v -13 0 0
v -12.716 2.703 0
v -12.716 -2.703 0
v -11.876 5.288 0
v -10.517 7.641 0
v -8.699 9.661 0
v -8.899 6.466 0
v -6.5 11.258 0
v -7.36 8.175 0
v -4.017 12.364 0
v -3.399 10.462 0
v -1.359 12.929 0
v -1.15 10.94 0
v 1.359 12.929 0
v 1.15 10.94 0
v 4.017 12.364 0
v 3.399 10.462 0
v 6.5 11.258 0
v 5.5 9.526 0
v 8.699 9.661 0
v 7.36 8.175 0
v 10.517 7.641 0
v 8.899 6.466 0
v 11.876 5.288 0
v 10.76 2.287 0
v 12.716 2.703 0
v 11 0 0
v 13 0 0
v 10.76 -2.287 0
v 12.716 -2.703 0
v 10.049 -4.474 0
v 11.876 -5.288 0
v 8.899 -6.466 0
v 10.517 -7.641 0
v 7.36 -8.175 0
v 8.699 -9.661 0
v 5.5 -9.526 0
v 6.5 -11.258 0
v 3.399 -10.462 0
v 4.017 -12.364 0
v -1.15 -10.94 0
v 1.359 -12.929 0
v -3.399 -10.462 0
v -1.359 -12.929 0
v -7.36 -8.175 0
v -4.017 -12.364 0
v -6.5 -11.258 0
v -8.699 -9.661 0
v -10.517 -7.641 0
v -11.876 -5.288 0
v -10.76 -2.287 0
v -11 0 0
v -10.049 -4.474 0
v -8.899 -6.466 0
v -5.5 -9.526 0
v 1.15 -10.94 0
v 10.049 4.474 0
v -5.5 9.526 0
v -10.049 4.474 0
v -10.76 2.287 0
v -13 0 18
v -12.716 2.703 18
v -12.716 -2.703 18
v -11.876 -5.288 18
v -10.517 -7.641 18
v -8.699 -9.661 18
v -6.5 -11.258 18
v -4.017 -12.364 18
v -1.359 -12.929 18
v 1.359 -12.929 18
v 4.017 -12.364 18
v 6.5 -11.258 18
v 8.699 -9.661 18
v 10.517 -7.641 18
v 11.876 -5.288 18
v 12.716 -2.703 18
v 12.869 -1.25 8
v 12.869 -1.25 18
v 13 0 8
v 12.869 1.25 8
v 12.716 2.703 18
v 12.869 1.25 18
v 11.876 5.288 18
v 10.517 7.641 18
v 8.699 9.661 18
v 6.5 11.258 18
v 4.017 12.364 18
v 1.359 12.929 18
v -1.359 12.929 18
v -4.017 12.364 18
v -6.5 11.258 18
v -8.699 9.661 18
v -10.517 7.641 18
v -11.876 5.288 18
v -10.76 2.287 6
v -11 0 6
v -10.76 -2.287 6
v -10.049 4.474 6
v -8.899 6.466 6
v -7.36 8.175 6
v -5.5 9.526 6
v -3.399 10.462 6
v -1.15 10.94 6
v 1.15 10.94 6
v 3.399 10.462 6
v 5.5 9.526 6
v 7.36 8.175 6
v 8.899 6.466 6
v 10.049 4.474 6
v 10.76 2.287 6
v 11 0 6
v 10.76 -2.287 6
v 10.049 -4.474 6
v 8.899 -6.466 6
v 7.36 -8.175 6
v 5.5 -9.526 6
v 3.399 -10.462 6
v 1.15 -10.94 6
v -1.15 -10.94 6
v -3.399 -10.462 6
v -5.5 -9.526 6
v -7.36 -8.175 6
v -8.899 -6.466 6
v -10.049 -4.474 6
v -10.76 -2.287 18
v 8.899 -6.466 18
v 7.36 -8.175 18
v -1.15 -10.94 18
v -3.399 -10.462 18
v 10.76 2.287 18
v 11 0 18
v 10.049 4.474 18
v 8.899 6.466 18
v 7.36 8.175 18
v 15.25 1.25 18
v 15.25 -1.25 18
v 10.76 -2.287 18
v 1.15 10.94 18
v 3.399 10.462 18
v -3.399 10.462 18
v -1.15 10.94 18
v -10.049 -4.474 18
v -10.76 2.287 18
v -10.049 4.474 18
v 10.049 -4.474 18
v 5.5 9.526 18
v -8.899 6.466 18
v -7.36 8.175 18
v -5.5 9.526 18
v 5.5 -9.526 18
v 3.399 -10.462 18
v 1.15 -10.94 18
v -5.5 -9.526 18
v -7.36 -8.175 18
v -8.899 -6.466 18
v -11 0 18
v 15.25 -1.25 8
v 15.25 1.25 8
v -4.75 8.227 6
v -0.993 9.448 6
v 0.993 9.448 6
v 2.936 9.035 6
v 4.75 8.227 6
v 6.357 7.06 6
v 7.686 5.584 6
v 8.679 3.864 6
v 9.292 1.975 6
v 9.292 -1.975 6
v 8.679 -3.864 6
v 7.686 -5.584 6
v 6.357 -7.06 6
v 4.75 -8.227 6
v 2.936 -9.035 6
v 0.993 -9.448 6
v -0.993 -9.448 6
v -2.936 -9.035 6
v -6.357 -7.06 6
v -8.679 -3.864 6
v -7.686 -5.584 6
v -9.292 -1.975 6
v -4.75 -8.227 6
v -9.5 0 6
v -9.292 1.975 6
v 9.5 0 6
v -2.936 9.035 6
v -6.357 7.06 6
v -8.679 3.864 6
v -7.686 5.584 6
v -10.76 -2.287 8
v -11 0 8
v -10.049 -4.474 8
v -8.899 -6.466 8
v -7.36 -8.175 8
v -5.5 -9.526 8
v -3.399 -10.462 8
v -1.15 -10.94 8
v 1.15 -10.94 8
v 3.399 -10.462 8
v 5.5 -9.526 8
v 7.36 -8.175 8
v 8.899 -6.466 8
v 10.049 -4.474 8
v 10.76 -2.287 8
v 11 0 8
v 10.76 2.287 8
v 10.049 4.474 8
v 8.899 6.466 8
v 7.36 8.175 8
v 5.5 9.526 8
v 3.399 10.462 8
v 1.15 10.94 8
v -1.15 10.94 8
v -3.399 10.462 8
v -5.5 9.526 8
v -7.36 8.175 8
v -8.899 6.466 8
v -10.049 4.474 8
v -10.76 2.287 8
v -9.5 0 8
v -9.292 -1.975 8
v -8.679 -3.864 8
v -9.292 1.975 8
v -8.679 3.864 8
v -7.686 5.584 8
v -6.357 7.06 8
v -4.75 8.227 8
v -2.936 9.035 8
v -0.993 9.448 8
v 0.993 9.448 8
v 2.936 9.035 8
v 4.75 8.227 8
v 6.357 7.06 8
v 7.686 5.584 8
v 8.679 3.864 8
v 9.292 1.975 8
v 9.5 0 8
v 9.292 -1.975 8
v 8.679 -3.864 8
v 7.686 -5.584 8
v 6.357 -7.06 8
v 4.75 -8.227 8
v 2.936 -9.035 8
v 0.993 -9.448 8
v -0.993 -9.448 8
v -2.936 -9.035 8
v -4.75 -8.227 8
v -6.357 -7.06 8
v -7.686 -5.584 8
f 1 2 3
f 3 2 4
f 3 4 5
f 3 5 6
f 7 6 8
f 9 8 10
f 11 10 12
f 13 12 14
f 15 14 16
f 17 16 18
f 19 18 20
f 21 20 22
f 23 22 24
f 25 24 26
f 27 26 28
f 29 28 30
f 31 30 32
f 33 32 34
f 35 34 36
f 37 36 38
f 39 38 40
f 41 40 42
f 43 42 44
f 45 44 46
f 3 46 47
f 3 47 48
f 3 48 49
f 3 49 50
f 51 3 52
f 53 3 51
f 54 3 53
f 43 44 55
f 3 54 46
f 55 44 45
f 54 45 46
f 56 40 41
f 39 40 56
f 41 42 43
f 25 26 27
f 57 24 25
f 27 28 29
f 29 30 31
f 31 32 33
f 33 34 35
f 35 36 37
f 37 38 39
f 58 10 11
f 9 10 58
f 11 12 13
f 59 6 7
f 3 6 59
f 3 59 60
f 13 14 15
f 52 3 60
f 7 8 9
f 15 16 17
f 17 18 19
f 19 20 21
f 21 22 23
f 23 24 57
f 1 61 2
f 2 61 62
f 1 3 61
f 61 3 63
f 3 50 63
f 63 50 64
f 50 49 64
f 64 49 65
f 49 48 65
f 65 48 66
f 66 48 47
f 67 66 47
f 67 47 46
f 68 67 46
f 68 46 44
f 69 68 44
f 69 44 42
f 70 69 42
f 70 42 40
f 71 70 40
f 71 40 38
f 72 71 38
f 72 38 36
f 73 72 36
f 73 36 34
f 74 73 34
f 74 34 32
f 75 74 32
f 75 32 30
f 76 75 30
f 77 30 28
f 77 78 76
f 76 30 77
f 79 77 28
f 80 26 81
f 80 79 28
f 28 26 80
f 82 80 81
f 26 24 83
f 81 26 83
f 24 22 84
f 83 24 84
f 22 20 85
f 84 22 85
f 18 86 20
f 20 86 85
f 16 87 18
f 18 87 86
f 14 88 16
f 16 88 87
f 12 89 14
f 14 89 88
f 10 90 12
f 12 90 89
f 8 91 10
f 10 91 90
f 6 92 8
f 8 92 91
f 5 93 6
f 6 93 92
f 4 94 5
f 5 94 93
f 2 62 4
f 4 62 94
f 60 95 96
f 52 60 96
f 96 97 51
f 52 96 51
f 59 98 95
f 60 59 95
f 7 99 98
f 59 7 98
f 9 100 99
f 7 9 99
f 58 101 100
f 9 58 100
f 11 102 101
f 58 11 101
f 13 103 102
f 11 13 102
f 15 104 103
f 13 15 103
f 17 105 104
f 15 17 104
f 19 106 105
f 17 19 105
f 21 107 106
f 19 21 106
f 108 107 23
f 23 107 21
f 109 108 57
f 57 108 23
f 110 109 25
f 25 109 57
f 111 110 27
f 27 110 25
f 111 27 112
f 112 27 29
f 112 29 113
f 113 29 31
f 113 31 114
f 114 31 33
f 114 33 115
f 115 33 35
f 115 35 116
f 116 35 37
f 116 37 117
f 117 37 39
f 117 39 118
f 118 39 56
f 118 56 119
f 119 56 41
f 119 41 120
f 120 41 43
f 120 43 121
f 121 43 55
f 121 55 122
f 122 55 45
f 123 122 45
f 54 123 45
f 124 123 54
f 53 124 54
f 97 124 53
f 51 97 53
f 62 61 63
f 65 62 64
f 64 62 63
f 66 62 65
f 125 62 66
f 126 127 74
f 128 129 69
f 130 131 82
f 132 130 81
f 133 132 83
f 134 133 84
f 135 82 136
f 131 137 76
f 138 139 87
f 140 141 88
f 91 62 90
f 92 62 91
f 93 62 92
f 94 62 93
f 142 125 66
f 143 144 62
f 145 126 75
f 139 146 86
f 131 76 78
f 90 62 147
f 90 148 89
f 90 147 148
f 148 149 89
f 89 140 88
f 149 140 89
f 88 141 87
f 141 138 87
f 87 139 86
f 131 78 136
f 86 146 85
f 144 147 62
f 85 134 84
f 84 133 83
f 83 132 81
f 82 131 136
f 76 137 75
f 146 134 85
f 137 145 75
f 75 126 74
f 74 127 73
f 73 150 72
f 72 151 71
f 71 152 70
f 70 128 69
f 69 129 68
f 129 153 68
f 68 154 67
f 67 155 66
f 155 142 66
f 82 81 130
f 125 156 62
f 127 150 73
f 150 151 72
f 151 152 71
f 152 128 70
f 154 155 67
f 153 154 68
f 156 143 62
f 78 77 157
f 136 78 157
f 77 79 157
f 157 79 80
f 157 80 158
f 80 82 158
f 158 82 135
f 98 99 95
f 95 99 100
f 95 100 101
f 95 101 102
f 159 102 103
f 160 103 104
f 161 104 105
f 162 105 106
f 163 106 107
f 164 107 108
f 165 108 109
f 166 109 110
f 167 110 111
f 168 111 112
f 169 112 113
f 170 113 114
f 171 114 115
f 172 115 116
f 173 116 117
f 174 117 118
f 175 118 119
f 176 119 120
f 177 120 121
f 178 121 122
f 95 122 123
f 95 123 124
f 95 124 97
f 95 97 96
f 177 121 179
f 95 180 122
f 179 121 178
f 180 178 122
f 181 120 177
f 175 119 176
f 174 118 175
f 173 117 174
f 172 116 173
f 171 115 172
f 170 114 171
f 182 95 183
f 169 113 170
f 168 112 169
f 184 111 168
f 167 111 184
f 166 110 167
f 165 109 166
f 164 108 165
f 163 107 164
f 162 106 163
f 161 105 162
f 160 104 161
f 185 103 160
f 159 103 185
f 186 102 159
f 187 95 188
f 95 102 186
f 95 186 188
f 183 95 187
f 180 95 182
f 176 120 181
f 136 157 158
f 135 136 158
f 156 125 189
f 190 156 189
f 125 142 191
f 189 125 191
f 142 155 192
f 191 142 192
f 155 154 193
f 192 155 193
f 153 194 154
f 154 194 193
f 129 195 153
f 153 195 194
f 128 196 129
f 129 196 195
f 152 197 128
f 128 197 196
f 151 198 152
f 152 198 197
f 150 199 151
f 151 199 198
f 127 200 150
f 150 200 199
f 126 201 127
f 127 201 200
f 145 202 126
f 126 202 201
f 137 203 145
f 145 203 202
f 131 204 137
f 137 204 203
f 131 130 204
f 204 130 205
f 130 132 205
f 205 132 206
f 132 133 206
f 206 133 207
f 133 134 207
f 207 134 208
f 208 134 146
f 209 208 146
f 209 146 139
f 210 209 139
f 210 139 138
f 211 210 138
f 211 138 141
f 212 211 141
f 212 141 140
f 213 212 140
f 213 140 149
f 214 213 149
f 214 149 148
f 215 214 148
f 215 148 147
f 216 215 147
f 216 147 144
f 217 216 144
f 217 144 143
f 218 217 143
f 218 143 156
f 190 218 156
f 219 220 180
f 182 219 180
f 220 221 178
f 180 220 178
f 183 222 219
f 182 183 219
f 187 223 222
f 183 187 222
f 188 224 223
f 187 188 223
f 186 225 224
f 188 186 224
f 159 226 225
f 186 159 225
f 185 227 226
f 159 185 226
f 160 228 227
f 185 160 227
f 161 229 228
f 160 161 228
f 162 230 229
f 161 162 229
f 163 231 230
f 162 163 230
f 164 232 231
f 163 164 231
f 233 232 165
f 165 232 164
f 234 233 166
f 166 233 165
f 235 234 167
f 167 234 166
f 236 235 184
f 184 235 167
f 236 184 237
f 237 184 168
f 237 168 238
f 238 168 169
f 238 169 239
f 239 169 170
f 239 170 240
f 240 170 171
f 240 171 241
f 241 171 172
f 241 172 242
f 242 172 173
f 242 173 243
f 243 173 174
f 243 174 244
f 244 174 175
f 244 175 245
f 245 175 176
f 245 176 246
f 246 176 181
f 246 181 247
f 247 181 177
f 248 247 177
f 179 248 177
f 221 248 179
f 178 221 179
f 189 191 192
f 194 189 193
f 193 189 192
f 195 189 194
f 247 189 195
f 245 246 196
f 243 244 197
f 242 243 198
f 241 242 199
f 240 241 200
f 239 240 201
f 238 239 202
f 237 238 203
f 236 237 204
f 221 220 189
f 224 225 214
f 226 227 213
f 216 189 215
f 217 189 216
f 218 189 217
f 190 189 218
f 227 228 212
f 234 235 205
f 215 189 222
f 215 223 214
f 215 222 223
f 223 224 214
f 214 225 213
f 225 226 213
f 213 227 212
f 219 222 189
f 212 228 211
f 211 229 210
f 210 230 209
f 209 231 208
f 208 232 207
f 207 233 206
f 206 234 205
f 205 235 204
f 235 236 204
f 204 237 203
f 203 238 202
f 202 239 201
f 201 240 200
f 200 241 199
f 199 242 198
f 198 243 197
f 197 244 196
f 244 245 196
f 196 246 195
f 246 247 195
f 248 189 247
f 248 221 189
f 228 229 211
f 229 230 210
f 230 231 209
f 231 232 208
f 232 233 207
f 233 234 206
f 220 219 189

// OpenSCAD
// file: settingsLenghts.scad
//Ancho de la pared
pared  = 2;
//Radio del centro hueco
radioC = 11;
//Alto de la capa de apertura
aperH = 6;
//Ancho de la apertura
aperW = 5;
//Ancho del lente macro
macroW = 9.3;
//Profundidad del macro
macroH = 3;
//Profundidad parte de atras y delante
profDelante = 6;
profAtras = 6;
//Ceja entre uniones de cilindros
cejaH = 6;


//
//Ancho de tubo principal (grande)
mcW = 32;//radio
mcH = 25;

//
//Adquisición de luz
luzHBig = 10; //donde va el tornillo
luzWBig = 27; //diametro donde va el tornillo
luzHBigT = 4; //alto del tornillo
luzWBigT = 6; //ancho del tornillo
luzHRosca = 7; //donde va la rosca
luzWRosca = 22; //diametro de donde va la rosca



//Cuadro guia para que no se mueva
guiaH = 10;
guiaW = 2.5;

module creaGuiaCentrada(){
	translate([-guiaW/2,-guiaW/2,h-guiaH])
	cube([guiaW,guiaW,guiaH]);
}

module creaGuiaTornilloCentrada(){
	translate([-luzWBigT/2,-luzWBigT/2,0])
	cube([luzWBigT,luzWBigT,luzHBig+0.2]);
}
module creaGuiaTornilloCentradaArea(){
	tmpW = luzWBigT + pared;
	tmpH = luzHBig  + pared;
	translate([-tmpW/2,-tmpW/2,0])
	cube([tmpW,tmpW,tmpH]);
}
// main file
include <settingsLenghts.scad>


//Alto de la capa de apertura
aperH = 2;

h = 18; //Altura total


CrearFrente();





module CrearFrente(){
	difference(){
		cylinder(r=radioC+pared,h);

		translate([0,0,-1])
		cylinder(r=radioC,profDelante+1);

		cylinder(r=radioC-1.5,h);

		//Ranura
		//translate([-(aperW/2),-(aperW/2),profDelante-0.5])
		//cube([aperW,aperW,aperH+1]);

		translate([0,0,(profDelante+aperH)])
		cylinder(r=radioC,h);

	}
	
	translate([radioC+pared+1,0,0])
	creaGuiaCentrada();

}


//cilindroPared(profDelante+aperH+profAtras);
//apertura();

module cilindroPared(h){
	translate([0, 0, h/2]){
		difference(){
			cylinder(r=radioC+pared,h, center=true);
			cylinder(r=radioC,h+2, center=true);
		}
	}
}

module apertura(){
	//Crea apertura
	translate([0, 0, (aperH/2)+profDelante ]){
		difference(){
			cylinder(r=radioC+1,aperH,center=true);
			translate([0, 0, aperH-macroH]){
				cylinder(r=macroW,aperH,center=true);
			}
			cube([aperW,aperW,aperH+2],center=true);		
		}
	}
}
